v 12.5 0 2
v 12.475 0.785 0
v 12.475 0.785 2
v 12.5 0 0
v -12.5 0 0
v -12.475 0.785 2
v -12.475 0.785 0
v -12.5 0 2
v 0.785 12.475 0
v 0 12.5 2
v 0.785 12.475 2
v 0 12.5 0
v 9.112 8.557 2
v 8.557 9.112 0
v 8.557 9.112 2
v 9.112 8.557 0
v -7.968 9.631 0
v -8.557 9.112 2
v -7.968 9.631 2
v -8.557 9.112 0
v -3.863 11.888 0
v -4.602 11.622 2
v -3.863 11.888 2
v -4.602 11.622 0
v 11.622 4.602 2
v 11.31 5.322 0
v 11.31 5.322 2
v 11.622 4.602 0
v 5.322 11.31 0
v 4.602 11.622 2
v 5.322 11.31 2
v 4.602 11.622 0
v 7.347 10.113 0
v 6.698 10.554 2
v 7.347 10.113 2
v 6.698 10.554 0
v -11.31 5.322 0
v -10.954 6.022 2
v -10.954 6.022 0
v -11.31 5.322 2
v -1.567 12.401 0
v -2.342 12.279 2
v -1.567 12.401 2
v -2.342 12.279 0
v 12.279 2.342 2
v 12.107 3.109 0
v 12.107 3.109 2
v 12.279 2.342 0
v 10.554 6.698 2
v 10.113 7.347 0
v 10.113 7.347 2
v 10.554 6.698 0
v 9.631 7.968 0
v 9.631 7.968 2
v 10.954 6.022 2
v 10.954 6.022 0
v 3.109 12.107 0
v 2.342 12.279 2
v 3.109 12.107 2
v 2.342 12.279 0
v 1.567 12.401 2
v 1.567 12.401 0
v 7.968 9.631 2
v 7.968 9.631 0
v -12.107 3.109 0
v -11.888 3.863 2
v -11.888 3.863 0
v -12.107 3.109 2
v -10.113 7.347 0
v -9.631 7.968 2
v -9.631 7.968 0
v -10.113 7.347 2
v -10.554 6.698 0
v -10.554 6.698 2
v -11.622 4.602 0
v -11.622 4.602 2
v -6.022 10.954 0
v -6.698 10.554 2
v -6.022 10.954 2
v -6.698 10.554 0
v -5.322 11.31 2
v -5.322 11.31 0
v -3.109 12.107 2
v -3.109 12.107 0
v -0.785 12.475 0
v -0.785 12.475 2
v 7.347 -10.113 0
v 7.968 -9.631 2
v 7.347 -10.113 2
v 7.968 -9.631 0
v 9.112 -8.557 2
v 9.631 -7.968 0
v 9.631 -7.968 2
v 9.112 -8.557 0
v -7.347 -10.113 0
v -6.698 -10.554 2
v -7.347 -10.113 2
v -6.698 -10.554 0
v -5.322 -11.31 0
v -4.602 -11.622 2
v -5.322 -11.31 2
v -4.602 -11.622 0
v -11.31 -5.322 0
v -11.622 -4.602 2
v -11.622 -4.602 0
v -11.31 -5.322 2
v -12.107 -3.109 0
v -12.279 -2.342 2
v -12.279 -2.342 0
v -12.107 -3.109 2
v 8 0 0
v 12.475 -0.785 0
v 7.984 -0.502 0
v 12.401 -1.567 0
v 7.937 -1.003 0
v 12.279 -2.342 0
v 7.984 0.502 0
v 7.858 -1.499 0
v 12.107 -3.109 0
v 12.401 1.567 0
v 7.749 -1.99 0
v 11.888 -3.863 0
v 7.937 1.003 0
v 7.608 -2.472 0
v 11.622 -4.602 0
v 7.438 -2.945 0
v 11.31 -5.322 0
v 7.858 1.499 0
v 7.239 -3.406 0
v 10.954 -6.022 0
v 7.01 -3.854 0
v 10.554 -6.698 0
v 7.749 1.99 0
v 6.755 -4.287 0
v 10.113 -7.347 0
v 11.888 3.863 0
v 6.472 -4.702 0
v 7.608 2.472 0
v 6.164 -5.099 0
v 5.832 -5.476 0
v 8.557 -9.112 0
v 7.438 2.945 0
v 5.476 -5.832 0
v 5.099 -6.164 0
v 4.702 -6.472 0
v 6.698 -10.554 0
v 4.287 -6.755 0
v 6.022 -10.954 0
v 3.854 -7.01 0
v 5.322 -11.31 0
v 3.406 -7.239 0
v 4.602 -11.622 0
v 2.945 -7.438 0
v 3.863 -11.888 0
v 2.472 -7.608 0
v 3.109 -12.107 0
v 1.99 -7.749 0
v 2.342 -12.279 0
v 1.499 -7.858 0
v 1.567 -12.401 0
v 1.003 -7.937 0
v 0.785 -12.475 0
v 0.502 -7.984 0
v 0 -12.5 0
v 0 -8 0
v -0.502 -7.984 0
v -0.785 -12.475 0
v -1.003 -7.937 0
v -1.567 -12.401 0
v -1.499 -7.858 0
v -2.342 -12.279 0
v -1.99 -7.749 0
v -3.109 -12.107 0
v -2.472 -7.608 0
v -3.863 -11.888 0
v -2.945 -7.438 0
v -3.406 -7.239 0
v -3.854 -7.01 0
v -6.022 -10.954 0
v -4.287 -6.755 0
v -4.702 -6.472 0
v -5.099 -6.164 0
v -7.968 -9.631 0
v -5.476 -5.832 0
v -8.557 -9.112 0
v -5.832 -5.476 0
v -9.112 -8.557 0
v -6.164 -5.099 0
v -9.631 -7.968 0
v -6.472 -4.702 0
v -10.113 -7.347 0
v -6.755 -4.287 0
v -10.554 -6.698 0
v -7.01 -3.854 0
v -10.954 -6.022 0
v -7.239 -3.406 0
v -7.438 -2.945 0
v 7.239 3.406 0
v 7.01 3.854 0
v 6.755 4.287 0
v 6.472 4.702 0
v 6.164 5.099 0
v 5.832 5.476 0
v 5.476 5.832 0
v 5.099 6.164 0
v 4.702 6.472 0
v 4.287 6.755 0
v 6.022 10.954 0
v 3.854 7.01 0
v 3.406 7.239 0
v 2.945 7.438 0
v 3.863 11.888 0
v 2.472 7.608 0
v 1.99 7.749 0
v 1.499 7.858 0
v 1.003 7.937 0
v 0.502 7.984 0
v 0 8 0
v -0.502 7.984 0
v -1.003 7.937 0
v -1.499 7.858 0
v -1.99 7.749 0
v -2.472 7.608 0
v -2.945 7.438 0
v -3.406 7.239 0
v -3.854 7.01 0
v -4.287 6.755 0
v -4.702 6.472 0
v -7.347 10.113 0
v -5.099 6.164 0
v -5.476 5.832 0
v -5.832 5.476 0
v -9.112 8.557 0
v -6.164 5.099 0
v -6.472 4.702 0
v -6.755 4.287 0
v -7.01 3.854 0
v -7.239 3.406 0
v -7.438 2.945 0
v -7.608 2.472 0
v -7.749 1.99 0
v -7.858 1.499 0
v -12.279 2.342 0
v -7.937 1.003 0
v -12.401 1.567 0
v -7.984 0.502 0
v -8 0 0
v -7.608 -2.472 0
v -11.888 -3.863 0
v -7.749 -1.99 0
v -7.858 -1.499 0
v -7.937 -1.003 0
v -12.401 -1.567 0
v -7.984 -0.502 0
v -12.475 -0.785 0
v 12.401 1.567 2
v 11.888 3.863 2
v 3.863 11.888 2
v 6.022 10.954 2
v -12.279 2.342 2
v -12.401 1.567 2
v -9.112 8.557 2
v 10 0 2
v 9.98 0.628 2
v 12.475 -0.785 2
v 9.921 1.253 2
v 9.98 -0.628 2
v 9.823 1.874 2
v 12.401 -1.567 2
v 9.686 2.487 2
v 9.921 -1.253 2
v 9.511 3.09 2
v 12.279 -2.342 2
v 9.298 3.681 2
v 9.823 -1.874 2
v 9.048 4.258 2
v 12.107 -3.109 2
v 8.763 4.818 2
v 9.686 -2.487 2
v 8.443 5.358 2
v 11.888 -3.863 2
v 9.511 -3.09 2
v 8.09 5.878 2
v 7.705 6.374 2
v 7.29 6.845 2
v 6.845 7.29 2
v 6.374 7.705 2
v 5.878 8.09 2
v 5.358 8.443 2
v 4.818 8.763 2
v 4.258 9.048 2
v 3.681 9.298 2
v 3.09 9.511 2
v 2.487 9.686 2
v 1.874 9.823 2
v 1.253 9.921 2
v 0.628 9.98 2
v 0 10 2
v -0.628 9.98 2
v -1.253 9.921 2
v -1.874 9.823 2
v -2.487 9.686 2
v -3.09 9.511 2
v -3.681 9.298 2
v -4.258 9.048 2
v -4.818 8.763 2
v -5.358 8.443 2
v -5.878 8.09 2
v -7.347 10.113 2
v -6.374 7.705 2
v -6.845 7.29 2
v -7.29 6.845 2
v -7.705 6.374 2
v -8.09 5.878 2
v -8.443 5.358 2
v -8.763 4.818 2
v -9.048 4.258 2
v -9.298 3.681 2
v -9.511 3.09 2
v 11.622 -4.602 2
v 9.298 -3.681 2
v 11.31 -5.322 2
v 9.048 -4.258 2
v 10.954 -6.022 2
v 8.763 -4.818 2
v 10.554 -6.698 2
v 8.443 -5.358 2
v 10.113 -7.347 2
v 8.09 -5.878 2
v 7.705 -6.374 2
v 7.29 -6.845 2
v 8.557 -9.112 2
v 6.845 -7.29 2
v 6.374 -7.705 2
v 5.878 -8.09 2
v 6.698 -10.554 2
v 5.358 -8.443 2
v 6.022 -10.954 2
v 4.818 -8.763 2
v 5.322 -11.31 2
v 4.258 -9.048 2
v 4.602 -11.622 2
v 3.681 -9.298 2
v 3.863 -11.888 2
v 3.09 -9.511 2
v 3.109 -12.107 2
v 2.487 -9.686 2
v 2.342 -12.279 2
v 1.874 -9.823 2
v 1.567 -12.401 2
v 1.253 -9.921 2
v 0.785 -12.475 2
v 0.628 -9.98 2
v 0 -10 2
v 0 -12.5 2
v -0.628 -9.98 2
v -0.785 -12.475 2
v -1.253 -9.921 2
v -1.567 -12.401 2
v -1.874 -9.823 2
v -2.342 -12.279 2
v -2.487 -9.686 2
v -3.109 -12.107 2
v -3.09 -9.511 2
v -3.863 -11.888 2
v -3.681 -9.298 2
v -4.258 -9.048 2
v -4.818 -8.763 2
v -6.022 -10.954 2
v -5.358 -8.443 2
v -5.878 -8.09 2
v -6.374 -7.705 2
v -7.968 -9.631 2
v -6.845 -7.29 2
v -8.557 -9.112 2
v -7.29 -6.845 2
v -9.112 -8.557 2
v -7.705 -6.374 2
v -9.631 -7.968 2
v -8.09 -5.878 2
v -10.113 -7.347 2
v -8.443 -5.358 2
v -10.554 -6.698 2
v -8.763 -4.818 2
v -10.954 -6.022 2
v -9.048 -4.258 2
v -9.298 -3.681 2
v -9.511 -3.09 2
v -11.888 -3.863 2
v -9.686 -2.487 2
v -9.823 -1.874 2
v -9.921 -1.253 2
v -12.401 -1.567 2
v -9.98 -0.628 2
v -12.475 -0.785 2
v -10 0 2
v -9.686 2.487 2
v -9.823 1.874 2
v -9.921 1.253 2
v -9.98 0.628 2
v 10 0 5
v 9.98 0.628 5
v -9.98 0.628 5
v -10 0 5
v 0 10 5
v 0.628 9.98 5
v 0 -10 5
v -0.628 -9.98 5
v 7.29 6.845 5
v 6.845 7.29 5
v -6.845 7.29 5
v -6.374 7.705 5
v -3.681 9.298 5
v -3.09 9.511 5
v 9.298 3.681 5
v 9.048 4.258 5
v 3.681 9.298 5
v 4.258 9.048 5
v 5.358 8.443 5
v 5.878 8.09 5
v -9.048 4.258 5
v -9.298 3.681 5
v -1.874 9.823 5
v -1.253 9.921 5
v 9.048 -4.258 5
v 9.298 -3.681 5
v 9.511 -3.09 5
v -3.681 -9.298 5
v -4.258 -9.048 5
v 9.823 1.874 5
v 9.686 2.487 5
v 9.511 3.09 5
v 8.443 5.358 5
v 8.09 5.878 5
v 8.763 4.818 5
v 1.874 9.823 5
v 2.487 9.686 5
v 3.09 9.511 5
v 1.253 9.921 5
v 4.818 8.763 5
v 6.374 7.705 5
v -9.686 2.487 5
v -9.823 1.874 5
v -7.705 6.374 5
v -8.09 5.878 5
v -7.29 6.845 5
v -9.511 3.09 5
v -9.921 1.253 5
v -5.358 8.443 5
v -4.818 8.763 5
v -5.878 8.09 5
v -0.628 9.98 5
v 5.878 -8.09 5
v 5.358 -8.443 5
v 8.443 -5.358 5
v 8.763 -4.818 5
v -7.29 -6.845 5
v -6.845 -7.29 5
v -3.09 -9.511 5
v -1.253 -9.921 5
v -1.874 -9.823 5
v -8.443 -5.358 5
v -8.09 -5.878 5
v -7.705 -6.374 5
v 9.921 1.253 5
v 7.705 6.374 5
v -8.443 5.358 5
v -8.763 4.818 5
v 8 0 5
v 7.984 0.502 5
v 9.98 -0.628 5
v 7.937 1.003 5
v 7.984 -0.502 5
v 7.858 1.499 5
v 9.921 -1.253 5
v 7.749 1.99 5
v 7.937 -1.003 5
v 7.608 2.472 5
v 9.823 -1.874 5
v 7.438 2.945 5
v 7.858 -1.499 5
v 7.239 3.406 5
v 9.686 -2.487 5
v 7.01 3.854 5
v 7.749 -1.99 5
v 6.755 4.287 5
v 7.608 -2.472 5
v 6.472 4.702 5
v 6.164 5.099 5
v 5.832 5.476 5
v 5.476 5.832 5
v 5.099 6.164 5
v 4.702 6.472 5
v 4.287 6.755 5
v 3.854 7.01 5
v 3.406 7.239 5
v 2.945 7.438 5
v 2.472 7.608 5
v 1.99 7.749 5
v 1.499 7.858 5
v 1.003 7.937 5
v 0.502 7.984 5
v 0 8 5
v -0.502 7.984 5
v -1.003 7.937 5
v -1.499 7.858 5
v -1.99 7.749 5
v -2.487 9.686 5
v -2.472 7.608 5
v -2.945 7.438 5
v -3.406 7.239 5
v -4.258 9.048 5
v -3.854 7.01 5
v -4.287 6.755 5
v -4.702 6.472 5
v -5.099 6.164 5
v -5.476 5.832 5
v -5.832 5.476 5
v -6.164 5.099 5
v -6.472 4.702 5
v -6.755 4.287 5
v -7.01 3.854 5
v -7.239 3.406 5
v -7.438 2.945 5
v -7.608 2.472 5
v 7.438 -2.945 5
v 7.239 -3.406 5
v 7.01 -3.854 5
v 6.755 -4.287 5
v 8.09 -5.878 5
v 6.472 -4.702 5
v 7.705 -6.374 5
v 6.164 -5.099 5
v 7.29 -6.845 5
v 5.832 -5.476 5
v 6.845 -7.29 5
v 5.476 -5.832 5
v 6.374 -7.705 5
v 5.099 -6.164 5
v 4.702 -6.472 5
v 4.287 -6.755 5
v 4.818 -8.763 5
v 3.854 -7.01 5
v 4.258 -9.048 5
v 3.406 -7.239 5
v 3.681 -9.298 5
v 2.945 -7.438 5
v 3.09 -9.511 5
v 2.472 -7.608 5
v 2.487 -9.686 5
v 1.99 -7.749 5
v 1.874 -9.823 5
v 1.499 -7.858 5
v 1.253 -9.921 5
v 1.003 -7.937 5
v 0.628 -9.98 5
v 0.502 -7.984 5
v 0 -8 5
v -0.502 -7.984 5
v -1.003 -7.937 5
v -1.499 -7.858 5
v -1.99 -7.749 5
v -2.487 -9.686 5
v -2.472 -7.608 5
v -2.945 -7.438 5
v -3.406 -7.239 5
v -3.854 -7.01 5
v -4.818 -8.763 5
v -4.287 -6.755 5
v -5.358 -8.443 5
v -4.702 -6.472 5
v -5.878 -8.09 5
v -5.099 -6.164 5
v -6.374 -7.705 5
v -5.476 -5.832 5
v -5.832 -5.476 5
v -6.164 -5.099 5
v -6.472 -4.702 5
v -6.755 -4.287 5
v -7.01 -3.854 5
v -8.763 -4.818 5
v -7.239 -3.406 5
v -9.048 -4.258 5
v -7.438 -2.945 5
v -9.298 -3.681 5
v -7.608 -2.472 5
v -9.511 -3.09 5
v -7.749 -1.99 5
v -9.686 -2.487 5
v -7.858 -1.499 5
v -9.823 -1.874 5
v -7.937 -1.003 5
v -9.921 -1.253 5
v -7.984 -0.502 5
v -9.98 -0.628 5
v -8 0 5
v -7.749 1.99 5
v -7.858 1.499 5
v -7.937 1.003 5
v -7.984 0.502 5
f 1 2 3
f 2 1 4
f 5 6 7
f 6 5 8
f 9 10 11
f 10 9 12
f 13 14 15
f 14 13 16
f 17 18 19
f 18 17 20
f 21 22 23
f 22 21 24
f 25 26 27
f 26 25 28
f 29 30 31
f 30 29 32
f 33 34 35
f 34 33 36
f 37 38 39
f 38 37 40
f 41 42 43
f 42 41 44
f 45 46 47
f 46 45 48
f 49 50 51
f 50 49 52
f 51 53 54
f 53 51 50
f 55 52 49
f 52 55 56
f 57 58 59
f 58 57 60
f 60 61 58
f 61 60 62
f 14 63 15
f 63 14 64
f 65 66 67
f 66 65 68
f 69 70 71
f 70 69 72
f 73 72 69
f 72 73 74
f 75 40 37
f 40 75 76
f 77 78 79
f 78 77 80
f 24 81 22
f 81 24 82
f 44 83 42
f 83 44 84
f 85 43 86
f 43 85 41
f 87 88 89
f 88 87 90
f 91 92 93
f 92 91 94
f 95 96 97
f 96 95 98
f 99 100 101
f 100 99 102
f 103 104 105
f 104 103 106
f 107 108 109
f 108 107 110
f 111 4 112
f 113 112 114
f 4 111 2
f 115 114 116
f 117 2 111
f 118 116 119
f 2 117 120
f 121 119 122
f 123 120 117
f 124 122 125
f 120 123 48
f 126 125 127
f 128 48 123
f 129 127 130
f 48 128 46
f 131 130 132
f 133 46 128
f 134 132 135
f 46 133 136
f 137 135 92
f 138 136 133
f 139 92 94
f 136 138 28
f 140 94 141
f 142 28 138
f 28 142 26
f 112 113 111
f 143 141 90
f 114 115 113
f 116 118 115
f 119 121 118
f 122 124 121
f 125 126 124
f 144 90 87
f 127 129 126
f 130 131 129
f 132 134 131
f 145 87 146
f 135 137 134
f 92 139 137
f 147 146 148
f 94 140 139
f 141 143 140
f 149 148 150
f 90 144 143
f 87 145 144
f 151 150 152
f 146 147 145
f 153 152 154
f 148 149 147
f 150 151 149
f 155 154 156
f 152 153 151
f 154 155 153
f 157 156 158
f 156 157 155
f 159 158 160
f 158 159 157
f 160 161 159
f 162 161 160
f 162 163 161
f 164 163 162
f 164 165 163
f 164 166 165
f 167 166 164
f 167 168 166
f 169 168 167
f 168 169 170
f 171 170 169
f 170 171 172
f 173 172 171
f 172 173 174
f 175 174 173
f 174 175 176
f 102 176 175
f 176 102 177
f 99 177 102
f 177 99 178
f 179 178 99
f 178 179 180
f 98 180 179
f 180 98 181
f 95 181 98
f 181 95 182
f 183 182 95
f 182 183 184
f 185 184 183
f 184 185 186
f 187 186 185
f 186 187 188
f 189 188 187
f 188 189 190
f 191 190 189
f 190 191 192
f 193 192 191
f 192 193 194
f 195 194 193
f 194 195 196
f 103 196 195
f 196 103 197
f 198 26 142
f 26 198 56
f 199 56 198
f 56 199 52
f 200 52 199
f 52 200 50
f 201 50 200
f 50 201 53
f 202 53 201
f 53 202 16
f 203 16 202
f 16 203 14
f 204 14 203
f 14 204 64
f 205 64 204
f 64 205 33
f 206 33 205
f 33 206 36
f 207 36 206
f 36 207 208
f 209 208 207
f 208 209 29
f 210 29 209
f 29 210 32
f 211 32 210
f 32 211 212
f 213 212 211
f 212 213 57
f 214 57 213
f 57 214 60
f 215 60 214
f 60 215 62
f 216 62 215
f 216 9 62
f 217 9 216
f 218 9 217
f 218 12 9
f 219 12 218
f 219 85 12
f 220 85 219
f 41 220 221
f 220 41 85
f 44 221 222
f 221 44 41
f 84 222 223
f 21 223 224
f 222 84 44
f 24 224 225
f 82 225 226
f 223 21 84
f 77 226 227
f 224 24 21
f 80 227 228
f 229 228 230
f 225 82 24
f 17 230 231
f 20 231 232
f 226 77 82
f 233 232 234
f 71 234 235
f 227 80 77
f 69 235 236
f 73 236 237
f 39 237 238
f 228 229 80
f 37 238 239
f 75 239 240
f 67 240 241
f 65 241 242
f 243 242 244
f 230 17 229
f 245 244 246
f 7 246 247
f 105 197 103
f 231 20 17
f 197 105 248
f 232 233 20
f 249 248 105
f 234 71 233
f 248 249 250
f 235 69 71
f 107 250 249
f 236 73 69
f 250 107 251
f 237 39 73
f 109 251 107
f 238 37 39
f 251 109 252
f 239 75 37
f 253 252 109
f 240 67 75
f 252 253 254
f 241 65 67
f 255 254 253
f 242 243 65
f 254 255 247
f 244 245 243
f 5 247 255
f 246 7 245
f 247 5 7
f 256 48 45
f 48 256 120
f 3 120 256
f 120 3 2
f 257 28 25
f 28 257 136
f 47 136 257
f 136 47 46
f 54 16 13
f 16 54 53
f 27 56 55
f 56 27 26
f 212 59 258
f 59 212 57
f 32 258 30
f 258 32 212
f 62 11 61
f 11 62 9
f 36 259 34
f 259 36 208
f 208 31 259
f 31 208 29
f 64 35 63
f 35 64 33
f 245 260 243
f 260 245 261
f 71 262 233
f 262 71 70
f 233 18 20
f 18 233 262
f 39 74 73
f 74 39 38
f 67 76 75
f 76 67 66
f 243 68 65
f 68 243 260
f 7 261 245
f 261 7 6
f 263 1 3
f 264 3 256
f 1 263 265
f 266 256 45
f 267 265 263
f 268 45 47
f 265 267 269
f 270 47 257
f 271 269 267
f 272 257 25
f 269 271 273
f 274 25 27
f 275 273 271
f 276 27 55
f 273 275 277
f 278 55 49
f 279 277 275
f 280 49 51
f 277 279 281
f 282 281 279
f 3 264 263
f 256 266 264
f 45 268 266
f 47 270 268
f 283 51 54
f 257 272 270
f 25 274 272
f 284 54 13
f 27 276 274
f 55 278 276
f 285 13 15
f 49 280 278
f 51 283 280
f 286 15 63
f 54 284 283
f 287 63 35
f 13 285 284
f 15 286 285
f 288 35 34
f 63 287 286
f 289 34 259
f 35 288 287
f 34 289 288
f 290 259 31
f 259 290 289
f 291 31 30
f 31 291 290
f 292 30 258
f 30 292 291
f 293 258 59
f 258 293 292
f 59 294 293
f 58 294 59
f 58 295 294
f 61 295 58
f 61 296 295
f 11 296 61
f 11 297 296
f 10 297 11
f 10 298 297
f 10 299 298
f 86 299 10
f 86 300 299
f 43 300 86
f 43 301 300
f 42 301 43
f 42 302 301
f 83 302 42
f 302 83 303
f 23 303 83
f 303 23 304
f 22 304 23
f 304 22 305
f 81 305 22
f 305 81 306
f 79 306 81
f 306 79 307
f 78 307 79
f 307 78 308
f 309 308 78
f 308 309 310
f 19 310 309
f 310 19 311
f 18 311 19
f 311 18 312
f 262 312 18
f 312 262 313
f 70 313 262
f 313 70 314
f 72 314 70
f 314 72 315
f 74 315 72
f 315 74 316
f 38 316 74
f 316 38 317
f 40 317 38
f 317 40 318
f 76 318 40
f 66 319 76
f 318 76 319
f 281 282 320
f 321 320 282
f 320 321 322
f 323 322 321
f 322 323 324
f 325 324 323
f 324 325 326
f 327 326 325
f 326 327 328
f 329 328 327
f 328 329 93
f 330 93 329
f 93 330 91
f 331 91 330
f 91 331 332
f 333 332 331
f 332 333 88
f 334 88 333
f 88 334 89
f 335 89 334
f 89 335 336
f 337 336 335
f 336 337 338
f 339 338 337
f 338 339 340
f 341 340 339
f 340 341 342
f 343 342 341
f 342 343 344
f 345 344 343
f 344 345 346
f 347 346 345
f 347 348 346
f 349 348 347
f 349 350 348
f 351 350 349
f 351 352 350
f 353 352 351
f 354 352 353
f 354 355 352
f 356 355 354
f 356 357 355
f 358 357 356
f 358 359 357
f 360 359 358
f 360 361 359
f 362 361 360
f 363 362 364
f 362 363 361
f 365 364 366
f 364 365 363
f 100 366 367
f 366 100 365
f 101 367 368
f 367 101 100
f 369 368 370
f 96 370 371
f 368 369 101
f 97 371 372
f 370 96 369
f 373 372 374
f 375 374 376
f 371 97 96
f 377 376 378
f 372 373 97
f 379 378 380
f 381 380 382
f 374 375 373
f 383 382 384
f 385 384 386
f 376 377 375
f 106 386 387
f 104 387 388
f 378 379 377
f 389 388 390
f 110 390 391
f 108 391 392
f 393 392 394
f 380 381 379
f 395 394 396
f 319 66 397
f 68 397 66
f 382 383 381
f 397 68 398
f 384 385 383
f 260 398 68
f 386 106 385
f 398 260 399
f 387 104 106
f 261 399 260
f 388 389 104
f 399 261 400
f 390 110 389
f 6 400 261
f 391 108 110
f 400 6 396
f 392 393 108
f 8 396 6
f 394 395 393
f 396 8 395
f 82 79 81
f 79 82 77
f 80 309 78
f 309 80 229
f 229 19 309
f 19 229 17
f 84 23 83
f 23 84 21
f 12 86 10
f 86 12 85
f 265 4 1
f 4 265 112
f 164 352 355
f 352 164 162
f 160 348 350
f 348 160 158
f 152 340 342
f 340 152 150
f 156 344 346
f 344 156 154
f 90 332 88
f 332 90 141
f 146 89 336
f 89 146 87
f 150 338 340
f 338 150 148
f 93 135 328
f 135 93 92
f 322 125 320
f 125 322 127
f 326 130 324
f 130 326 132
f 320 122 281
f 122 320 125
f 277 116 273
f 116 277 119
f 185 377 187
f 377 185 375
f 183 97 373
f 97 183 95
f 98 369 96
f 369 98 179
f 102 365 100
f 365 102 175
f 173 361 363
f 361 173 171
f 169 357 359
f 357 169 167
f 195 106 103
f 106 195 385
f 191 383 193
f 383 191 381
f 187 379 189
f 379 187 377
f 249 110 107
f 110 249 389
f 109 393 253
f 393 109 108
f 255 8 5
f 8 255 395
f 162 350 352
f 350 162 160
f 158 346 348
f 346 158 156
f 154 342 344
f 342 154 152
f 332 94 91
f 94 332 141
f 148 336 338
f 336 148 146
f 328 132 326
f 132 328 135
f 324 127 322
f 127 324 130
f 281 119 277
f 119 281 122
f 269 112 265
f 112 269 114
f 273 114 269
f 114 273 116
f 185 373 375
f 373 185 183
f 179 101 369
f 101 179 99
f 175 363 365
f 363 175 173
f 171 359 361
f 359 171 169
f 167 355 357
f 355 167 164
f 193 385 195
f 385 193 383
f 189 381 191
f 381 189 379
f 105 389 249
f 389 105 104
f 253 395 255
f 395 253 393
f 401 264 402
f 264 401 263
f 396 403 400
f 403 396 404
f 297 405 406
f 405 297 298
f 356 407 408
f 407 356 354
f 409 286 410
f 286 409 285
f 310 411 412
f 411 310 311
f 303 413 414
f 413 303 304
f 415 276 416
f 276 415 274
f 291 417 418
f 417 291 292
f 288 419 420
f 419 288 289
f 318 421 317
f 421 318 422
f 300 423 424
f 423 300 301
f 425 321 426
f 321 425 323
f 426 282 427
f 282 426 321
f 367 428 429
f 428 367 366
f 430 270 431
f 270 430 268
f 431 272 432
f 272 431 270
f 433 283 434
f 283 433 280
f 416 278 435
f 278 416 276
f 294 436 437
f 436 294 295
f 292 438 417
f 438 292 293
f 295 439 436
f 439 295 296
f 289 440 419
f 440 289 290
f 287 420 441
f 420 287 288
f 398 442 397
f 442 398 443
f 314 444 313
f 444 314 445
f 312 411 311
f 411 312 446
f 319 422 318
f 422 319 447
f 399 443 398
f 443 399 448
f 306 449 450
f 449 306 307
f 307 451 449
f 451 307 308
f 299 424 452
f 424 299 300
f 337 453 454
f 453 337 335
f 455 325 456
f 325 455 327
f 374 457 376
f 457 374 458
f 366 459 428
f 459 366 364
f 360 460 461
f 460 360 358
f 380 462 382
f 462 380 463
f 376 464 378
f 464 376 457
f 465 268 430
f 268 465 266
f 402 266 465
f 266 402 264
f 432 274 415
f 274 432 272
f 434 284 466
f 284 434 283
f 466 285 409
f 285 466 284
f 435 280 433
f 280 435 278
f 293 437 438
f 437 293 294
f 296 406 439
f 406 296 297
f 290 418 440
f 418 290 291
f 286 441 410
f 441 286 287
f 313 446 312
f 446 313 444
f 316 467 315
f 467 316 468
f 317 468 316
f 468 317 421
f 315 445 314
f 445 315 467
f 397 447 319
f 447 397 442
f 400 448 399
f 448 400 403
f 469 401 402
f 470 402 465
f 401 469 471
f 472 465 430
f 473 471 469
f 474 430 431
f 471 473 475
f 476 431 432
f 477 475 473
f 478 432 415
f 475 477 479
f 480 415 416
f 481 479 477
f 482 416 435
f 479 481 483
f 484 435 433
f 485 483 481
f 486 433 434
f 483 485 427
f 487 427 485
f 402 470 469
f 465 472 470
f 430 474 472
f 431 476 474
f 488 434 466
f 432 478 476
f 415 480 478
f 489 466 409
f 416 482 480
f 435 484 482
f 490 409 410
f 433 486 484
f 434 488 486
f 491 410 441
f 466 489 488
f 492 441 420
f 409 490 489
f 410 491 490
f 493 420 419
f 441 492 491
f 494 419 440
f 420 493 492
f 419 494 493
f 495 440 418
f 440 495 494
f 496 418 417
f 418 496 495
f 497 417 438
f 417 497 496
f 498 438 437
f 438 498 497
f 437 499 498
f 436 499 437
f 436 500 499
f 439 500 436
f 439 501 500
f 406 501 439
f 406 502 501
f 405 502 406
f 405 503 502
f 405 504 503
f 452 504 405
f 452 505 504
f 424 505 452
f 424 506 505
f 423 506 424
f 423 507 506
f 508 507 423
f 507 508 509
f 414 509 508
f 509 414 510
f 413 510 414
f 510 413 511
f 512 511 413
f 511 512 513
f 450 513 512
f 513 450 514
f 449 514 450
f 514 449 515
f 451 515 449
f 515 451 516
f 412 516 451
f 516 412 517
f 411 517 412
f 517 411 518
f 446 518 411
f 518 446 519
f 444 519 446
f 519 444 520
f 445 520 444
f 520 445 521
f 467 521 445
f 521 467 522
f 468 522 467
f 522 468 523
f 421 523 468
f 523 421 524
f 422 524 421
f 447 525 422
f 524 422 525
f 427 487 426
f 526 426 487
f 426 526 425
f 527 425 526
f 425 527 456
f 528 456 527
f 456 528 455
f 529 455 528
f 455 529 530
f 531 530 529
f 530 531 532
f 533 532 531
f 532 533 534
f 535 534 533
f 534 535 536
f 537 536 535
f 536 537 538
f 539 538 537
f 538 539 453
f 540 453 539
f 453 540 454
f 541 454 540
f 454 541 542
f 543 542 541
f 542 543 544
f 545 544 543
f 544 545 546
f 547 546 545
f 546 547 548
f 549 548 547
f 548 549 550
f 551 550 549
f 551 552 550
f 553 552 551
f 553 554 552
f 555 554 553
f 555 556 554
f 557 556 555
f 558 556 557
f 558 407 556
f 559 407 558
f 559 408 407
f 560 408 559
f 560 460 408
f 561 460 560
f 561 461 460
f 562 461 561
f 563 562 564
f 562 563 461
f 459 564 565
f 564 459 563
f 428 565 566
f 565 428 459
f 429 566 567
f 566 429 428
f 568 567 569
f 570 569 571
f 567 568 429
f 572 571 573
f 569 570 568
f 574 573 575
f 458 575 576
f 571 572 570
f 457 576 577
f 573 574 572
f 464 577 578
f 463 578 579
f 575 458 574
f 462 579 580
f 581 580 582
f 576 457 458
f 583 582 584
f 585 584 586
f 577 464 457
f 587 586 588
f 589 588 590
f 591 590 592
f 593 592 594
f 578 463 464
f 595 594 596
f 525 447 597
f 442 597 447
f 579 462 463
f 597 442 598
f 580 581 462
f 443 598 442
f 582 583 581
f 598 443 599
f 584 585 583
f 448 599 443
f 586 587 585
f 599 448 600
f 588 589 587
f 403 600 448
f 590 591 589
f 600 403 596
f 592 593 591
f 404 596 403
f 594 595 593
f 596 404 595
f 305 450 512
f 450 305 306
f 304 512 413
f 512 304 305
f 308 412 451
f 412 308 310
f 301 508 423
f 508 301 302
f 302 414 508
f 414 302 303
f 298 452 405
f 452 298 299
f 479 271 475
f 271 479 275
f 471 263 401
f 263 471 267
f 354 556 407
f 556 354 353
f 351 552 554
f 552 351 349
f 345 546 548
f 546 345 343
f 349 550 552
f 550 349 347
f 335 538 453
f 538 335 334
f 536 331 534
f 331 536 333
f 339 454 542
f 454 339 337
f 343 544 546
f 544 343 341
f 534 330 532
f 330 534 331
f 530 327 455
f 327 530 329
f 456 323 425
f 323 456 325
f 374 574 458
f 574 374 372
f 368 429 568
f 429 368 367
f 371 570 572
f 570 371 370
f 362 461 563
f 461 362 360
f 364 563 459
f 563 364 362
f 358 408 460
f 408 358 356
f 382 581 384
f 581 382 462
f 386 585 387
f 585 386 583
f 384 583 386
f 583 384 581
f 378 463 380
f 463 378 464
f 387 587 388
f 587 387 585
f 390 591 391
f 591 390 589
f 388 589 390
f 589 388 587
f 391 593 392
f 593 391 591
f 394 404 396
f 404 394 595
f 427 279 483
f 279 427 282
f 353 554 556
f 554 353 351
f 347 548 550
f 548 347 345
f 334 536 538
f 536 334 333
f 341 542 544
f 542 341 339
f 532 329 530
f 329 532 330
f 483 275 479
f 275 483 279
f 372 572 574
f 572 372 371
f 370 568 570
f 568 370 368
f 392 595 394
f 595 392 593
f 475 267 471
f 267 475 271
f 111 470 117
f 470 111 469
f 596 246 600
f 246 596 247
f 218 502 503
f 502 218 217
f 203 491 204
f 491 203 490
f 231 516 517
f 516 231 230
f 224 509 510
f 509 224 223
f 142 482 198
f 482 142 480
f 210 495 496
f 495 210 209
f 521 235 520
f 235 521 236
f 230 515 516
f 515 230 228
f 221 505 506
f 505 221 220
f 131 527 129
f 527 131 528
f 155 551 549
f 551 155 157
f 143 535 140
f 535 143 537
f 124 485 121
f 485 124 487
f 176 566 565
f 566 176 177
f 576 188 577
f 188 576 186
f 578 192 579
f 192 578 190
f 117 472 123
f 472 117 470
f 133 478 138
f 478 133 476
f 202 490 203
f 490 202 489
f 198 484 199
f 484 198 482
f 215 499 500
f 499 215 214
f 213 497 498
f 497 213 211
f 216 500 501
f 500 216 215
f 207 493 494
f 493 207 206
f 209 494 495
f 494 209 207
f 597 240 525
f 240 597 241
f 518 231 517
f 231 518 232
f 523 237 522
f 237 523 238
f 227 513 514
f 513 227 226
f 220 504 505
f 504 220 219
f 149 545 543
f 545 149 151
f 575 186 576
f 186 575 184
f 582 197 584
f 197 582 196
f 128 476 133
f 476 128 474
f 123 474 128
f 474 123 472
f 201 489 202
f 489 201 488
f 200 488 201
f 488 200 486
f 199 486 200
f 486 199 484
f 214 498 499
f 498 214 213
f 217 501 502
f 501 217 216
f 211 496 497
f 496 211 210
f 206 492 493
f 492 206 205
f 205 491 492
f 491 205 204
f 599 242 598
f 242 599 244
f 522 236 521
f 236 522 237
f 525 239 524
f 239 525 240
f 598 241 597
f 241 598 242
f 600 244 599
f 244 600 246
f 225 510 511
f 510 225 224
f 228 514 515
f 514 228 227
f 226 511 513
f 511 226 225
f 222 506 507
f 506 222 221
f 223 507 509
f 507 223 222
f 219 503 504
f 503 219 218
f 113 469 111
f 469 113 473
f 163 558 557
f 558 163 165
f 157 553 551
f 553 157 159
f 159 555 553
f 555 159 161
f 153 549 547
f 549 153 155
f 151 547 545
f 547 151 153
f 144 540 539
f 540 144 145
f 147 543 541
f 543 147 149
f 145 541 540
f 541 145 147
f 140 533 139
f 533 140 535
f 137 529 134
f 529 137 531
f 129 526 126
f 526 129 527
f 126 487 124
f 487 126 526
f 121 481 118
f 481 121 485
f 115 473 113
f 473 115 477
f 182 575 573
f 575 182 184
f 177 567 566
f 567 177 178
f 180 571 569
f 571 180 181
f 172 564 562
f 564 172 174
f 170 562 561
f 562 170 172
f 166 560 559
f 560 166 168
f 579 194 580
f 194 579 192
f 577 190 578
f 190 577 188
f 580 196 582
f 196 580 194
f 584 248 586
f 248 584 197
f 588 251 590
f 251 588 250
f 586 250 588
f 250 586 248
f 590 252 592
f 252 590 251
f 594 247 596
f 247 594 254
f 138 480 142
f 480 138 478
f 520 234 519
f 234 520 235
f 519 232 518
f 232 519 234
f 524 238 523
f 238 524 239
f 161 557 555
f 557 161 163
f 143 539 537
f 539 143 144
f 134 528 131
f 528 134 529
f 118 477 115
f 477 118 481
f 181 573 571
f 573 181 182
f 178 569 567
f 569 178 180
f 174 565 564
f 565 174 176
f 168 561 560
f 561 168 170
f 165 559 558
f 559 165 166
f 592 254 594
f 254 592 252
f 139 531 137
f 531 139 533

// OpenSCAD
difference() {
    union() {
        cylinder(r=12.5, h=2, $fn=100);
        cylinder(r=10, h=5, $fn=100);
    }
    translate([0,0,-1]) cylinder(r=8,h=10, $fn=100);
}
